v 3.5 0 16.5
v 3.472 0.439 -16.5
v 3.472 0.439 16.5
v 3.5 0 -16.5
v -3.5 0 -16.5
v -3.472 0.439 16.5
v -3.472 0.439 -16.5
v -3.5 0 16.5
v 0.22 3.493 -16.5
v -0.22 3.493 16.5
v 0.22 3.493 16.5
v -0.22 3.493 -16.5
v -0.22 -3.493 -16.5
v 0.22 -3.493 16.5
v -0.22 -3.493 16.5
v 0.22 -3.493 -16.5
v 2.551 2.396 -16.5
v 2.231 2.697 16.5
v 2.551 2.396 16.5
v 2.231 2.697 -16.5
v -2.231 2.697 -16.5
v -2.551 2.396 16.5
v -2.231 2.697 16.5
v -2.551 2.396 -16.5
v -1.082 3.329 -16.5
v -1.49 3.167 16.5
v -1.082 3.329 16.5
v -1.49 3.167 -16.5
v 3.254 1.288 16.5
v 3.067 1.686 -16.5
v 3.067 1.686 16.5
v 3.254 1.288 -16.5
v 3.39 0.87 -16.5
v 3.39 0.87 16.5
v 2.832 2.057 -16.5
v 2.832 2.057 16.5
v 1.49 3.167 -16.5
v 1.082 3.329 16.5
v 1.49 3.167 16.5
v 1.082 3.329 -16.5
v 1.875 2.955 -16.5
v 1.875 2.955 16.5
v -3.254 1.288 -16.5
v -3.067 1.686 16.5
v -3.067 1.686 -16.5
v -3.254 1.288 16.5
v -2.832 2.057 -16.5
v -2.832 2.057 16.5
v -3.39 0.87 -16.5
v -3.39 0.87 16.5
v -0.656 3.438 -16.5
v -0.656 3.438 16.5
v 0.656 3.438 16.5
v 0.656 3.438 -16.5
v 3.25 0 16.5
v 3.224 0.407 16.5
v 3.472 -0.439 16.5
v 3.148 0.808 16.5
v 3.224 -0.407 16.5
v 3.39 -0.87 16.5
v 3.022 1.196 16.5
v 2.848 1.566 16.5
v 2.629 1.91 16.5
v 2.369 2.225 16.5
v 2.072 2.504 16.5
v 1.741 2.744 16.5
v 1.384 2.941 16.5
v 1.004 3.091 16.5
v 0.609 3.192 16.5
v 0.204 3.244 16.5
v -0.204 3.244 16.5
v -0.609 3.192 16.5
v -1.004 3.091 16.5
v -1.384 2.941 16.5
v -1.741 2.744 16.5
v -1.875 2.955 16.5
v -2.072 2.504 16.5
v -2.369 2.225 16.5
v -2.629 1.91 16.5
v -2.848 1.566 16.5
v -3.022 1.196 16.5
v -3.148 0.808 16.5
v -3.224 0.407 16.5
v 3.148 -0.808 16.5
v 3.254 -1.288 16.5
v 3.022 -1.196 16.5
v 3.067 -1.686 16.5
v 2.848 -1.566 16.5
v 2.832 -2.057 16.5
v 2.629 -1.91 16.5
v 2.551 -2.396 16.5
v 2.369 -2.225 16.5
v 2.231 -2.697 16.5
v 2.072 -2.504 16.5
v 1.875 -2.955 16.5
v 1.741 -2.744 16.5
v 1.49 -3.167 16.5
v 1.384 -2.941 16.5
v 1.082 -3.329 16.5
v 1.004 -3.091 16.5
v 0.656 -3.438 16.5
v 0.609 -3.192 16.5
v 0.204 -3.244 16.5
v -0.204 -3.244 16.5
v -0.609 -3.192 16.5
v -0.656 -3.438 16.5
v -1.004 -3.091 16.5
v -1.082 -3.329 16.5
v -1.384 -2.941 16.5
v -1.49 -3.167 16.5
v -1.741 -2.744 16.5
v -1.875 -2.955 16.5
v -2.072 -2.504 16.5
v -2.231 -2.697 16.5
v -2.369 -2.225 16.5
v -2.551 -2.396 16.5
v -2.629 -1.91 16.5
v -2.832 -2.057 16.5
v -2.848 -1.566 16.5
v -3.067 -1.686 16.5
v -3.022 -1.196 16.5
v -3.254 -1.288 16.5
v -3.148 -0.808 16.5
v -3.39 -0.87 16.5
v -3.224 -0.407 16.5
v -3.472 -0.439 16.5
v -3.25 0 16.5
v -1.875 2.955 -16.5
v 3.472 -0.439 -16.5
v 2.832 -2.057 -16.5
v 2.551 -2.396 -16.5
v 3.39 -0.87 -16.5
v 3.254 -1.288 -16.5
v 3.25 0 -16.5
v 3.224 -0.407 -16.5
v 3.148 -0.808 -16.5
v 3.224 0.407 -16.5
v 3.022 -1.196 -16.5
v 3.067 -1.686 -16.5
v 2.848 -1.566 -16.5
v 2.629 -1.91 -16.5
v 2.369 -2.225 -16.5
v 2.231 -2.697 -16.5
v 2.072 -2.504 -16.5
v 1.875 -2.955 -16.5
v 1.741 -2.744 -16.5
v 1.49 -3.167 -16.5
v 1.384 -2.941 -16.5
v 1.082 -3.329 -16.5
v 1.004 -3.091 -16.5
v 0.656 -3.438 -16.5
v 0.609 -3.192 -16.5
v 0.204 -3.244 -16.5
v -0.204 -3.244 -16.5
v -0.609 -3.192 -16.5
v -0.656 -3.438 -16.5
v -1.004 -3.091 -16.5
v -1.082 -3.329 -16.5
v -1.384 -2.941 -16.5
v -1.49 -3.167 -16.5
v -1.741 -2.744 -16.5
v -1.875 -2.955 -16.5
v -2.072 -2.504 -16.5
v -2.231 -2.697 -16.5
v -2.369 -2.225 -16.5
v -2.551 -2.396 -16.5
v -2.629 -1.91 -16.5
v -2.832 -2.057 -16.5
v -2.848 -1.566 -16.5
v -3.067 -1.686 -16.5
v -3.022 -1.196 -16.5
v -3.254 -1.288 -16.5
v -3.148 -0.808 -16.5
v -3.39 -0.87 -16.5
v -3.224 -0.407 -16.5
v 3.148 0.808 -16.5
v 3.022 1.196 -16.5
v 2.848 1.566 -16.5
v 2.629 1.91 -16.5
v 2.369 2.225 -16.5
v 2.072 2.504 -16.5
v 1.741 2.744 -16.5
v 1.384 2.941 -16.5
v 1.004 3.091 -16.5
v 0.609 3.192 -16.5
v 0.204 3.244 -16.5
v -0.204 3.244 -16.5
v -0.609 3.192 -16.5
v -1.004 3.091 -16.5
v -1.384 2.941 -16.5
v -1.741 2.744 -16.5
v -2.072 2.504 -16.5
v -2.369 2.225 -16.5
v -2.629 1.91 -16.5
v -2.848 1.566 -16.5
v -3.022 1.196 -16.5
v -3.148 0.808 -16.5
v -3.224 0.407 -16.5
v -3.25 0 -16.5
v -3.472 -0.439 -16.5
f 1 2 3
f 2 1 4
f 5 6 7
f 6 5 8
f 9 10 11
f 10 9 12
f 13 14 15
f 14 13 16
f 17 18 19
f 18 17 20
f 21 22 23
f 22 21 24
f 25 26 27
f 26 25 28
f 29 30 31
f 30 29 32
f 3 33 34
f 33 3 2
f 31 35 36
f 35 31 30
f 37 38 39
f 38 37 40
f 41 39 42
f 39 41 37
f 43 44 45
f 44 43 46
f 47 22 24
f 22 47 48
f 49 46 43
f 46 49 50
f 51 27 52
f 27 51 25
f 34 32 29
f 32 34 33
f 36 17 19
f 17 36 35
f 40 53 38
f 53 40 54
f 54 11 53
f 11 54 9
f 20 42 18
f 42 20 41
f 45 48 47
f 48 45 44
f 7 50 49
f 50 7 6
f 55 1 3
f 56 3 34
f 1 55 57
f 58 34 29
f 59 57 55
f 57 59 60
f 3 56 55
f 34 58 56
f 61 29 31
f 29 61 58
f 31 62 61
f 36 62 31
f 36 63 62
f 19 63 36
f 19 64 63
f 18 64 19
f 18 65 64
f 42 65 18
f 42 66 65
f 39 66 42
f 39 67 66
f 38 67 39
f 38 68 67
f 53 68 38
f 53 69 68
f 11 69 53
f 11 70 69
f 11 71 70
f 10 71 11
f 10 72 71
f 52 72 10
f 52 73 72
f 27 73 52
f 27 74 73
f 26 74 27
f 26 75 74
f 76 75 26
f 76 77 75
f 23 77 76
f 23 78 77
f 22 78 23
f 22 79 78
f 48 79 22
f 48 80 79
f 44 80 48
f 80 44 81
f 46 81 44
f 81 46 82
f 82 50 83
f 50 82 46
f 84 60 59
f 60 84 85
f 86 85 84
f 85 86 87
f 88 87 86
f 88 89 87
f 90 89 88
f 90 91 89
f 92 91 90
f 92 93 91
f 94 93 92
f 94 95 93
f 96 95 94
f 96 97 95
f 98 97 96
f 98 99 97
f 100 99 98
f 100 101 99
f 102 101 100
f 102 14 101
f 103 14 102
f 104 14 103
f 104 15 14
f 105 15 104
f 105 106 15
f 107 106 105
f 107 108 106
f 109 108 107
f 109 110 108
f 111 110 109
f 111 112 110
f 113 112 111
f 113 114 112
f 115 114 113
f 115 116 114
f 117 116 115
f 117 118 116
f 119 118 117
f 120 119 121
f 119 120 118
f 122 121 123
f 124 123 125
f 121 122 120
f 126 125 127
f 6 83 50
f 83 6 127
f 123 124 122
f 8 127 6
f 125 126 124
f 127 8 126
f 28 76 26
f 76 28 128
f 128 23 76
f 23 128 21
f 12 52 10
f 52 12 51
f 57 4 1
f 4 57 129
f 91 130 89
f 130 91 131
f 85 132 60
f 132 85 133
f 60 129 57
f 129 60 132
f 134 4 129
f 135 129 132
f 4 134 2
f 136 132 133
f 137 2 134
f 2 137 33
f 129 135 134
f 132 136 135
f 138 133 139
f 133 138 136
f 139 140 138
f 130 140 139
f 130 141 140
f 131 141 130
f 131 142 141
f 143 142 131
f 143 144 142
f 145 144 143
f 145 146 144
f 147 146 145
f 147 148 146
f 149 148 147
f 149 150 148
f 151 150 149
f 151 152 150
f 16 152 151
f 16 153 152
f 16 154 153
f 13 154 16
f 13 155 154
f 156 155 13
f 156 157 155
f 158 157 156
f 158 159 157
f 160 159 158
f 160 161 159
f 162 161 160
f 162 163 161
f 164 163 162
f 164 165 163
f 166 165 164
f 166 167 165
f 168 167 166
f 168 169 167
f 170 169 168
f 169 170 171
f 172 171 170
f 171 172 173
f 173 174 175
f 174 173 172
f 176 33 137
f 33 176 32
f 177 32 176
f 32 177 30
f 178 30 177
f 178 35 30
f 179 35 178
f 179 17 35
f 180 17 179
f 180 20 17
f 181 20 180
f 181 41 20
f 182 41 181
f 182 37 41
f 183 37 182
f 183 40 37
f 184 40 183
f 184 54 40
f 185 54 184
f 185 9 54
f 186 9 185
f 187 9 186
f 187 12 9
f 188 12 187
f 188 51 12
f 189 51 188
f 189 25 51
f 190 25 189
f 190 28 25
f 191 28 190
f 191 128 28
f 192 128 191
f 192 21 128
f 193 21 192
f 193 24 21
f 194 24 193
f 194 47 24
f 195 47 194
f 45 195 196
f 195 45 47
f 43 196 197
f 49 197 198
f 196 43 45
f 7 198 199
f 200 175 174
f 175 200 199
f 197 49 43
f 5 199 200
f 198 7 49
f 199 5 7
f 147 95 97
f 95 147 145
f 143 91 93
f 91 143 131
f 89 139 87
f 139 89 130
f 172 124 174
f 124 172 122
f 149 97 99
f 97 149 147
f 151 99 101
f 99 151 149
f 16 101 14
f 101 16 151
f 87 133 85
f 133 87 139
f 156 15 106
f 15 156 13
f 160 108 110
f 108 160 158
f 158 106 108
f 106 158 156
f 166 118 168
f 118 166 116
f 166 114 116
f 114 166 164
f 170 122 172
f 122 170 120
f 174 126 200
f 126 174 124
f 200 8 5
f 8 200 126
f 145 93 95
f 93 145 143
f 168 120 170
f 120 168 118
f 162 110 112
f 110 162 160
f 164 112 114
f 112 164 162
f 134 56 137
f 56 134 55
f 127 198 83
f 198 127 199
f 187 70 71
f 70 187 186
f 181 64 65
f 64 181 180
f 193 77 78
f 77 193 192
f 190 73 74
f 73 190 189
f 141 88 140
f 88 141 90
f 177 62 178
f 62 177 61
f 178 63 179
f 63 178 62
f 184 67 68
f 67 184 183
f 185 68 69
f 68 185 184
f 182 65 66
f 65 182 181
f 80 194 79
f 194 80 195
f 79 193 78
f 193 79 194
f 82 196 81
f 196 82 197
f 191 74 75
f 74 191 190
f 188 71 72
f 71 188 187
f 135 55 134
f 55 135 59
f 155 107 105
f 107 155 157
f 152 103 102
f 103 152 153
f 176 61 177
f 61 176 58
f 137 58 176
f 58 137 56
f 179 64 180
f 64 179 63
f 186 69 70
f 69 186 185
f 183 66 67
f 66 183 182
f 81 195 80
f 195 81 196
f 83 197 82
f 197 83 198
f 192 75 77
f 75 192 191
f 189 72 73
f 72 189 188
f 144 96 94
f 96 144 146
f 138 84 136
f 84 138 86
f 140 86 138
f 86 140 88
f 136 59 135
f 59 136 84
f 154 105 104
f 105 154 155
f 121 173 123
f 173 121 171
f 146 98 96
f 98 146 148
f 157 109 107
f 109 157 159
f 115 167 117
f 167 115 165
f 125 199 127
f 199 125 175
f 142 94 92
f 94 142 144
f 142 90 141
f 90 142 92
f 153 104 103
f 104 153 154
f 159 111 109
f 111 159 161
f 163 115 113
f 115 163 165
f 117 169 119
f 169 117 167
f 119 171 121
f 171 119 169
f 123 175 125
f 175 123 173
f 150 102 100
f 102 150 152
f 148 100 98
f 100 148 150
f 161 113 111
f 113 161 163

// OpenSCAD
$fn = 50;


difference() {
	union() {
		translate(v = [0, 0, -16.5000000000]) {
			cylinder(h = 33, r = 3.5000000000);
		}
	}
	union() {
		translate(v = [0, 0, -100.0000000000]) {
			cylinder(h = 200, r = 3.2500000000);
		}
	}
}
